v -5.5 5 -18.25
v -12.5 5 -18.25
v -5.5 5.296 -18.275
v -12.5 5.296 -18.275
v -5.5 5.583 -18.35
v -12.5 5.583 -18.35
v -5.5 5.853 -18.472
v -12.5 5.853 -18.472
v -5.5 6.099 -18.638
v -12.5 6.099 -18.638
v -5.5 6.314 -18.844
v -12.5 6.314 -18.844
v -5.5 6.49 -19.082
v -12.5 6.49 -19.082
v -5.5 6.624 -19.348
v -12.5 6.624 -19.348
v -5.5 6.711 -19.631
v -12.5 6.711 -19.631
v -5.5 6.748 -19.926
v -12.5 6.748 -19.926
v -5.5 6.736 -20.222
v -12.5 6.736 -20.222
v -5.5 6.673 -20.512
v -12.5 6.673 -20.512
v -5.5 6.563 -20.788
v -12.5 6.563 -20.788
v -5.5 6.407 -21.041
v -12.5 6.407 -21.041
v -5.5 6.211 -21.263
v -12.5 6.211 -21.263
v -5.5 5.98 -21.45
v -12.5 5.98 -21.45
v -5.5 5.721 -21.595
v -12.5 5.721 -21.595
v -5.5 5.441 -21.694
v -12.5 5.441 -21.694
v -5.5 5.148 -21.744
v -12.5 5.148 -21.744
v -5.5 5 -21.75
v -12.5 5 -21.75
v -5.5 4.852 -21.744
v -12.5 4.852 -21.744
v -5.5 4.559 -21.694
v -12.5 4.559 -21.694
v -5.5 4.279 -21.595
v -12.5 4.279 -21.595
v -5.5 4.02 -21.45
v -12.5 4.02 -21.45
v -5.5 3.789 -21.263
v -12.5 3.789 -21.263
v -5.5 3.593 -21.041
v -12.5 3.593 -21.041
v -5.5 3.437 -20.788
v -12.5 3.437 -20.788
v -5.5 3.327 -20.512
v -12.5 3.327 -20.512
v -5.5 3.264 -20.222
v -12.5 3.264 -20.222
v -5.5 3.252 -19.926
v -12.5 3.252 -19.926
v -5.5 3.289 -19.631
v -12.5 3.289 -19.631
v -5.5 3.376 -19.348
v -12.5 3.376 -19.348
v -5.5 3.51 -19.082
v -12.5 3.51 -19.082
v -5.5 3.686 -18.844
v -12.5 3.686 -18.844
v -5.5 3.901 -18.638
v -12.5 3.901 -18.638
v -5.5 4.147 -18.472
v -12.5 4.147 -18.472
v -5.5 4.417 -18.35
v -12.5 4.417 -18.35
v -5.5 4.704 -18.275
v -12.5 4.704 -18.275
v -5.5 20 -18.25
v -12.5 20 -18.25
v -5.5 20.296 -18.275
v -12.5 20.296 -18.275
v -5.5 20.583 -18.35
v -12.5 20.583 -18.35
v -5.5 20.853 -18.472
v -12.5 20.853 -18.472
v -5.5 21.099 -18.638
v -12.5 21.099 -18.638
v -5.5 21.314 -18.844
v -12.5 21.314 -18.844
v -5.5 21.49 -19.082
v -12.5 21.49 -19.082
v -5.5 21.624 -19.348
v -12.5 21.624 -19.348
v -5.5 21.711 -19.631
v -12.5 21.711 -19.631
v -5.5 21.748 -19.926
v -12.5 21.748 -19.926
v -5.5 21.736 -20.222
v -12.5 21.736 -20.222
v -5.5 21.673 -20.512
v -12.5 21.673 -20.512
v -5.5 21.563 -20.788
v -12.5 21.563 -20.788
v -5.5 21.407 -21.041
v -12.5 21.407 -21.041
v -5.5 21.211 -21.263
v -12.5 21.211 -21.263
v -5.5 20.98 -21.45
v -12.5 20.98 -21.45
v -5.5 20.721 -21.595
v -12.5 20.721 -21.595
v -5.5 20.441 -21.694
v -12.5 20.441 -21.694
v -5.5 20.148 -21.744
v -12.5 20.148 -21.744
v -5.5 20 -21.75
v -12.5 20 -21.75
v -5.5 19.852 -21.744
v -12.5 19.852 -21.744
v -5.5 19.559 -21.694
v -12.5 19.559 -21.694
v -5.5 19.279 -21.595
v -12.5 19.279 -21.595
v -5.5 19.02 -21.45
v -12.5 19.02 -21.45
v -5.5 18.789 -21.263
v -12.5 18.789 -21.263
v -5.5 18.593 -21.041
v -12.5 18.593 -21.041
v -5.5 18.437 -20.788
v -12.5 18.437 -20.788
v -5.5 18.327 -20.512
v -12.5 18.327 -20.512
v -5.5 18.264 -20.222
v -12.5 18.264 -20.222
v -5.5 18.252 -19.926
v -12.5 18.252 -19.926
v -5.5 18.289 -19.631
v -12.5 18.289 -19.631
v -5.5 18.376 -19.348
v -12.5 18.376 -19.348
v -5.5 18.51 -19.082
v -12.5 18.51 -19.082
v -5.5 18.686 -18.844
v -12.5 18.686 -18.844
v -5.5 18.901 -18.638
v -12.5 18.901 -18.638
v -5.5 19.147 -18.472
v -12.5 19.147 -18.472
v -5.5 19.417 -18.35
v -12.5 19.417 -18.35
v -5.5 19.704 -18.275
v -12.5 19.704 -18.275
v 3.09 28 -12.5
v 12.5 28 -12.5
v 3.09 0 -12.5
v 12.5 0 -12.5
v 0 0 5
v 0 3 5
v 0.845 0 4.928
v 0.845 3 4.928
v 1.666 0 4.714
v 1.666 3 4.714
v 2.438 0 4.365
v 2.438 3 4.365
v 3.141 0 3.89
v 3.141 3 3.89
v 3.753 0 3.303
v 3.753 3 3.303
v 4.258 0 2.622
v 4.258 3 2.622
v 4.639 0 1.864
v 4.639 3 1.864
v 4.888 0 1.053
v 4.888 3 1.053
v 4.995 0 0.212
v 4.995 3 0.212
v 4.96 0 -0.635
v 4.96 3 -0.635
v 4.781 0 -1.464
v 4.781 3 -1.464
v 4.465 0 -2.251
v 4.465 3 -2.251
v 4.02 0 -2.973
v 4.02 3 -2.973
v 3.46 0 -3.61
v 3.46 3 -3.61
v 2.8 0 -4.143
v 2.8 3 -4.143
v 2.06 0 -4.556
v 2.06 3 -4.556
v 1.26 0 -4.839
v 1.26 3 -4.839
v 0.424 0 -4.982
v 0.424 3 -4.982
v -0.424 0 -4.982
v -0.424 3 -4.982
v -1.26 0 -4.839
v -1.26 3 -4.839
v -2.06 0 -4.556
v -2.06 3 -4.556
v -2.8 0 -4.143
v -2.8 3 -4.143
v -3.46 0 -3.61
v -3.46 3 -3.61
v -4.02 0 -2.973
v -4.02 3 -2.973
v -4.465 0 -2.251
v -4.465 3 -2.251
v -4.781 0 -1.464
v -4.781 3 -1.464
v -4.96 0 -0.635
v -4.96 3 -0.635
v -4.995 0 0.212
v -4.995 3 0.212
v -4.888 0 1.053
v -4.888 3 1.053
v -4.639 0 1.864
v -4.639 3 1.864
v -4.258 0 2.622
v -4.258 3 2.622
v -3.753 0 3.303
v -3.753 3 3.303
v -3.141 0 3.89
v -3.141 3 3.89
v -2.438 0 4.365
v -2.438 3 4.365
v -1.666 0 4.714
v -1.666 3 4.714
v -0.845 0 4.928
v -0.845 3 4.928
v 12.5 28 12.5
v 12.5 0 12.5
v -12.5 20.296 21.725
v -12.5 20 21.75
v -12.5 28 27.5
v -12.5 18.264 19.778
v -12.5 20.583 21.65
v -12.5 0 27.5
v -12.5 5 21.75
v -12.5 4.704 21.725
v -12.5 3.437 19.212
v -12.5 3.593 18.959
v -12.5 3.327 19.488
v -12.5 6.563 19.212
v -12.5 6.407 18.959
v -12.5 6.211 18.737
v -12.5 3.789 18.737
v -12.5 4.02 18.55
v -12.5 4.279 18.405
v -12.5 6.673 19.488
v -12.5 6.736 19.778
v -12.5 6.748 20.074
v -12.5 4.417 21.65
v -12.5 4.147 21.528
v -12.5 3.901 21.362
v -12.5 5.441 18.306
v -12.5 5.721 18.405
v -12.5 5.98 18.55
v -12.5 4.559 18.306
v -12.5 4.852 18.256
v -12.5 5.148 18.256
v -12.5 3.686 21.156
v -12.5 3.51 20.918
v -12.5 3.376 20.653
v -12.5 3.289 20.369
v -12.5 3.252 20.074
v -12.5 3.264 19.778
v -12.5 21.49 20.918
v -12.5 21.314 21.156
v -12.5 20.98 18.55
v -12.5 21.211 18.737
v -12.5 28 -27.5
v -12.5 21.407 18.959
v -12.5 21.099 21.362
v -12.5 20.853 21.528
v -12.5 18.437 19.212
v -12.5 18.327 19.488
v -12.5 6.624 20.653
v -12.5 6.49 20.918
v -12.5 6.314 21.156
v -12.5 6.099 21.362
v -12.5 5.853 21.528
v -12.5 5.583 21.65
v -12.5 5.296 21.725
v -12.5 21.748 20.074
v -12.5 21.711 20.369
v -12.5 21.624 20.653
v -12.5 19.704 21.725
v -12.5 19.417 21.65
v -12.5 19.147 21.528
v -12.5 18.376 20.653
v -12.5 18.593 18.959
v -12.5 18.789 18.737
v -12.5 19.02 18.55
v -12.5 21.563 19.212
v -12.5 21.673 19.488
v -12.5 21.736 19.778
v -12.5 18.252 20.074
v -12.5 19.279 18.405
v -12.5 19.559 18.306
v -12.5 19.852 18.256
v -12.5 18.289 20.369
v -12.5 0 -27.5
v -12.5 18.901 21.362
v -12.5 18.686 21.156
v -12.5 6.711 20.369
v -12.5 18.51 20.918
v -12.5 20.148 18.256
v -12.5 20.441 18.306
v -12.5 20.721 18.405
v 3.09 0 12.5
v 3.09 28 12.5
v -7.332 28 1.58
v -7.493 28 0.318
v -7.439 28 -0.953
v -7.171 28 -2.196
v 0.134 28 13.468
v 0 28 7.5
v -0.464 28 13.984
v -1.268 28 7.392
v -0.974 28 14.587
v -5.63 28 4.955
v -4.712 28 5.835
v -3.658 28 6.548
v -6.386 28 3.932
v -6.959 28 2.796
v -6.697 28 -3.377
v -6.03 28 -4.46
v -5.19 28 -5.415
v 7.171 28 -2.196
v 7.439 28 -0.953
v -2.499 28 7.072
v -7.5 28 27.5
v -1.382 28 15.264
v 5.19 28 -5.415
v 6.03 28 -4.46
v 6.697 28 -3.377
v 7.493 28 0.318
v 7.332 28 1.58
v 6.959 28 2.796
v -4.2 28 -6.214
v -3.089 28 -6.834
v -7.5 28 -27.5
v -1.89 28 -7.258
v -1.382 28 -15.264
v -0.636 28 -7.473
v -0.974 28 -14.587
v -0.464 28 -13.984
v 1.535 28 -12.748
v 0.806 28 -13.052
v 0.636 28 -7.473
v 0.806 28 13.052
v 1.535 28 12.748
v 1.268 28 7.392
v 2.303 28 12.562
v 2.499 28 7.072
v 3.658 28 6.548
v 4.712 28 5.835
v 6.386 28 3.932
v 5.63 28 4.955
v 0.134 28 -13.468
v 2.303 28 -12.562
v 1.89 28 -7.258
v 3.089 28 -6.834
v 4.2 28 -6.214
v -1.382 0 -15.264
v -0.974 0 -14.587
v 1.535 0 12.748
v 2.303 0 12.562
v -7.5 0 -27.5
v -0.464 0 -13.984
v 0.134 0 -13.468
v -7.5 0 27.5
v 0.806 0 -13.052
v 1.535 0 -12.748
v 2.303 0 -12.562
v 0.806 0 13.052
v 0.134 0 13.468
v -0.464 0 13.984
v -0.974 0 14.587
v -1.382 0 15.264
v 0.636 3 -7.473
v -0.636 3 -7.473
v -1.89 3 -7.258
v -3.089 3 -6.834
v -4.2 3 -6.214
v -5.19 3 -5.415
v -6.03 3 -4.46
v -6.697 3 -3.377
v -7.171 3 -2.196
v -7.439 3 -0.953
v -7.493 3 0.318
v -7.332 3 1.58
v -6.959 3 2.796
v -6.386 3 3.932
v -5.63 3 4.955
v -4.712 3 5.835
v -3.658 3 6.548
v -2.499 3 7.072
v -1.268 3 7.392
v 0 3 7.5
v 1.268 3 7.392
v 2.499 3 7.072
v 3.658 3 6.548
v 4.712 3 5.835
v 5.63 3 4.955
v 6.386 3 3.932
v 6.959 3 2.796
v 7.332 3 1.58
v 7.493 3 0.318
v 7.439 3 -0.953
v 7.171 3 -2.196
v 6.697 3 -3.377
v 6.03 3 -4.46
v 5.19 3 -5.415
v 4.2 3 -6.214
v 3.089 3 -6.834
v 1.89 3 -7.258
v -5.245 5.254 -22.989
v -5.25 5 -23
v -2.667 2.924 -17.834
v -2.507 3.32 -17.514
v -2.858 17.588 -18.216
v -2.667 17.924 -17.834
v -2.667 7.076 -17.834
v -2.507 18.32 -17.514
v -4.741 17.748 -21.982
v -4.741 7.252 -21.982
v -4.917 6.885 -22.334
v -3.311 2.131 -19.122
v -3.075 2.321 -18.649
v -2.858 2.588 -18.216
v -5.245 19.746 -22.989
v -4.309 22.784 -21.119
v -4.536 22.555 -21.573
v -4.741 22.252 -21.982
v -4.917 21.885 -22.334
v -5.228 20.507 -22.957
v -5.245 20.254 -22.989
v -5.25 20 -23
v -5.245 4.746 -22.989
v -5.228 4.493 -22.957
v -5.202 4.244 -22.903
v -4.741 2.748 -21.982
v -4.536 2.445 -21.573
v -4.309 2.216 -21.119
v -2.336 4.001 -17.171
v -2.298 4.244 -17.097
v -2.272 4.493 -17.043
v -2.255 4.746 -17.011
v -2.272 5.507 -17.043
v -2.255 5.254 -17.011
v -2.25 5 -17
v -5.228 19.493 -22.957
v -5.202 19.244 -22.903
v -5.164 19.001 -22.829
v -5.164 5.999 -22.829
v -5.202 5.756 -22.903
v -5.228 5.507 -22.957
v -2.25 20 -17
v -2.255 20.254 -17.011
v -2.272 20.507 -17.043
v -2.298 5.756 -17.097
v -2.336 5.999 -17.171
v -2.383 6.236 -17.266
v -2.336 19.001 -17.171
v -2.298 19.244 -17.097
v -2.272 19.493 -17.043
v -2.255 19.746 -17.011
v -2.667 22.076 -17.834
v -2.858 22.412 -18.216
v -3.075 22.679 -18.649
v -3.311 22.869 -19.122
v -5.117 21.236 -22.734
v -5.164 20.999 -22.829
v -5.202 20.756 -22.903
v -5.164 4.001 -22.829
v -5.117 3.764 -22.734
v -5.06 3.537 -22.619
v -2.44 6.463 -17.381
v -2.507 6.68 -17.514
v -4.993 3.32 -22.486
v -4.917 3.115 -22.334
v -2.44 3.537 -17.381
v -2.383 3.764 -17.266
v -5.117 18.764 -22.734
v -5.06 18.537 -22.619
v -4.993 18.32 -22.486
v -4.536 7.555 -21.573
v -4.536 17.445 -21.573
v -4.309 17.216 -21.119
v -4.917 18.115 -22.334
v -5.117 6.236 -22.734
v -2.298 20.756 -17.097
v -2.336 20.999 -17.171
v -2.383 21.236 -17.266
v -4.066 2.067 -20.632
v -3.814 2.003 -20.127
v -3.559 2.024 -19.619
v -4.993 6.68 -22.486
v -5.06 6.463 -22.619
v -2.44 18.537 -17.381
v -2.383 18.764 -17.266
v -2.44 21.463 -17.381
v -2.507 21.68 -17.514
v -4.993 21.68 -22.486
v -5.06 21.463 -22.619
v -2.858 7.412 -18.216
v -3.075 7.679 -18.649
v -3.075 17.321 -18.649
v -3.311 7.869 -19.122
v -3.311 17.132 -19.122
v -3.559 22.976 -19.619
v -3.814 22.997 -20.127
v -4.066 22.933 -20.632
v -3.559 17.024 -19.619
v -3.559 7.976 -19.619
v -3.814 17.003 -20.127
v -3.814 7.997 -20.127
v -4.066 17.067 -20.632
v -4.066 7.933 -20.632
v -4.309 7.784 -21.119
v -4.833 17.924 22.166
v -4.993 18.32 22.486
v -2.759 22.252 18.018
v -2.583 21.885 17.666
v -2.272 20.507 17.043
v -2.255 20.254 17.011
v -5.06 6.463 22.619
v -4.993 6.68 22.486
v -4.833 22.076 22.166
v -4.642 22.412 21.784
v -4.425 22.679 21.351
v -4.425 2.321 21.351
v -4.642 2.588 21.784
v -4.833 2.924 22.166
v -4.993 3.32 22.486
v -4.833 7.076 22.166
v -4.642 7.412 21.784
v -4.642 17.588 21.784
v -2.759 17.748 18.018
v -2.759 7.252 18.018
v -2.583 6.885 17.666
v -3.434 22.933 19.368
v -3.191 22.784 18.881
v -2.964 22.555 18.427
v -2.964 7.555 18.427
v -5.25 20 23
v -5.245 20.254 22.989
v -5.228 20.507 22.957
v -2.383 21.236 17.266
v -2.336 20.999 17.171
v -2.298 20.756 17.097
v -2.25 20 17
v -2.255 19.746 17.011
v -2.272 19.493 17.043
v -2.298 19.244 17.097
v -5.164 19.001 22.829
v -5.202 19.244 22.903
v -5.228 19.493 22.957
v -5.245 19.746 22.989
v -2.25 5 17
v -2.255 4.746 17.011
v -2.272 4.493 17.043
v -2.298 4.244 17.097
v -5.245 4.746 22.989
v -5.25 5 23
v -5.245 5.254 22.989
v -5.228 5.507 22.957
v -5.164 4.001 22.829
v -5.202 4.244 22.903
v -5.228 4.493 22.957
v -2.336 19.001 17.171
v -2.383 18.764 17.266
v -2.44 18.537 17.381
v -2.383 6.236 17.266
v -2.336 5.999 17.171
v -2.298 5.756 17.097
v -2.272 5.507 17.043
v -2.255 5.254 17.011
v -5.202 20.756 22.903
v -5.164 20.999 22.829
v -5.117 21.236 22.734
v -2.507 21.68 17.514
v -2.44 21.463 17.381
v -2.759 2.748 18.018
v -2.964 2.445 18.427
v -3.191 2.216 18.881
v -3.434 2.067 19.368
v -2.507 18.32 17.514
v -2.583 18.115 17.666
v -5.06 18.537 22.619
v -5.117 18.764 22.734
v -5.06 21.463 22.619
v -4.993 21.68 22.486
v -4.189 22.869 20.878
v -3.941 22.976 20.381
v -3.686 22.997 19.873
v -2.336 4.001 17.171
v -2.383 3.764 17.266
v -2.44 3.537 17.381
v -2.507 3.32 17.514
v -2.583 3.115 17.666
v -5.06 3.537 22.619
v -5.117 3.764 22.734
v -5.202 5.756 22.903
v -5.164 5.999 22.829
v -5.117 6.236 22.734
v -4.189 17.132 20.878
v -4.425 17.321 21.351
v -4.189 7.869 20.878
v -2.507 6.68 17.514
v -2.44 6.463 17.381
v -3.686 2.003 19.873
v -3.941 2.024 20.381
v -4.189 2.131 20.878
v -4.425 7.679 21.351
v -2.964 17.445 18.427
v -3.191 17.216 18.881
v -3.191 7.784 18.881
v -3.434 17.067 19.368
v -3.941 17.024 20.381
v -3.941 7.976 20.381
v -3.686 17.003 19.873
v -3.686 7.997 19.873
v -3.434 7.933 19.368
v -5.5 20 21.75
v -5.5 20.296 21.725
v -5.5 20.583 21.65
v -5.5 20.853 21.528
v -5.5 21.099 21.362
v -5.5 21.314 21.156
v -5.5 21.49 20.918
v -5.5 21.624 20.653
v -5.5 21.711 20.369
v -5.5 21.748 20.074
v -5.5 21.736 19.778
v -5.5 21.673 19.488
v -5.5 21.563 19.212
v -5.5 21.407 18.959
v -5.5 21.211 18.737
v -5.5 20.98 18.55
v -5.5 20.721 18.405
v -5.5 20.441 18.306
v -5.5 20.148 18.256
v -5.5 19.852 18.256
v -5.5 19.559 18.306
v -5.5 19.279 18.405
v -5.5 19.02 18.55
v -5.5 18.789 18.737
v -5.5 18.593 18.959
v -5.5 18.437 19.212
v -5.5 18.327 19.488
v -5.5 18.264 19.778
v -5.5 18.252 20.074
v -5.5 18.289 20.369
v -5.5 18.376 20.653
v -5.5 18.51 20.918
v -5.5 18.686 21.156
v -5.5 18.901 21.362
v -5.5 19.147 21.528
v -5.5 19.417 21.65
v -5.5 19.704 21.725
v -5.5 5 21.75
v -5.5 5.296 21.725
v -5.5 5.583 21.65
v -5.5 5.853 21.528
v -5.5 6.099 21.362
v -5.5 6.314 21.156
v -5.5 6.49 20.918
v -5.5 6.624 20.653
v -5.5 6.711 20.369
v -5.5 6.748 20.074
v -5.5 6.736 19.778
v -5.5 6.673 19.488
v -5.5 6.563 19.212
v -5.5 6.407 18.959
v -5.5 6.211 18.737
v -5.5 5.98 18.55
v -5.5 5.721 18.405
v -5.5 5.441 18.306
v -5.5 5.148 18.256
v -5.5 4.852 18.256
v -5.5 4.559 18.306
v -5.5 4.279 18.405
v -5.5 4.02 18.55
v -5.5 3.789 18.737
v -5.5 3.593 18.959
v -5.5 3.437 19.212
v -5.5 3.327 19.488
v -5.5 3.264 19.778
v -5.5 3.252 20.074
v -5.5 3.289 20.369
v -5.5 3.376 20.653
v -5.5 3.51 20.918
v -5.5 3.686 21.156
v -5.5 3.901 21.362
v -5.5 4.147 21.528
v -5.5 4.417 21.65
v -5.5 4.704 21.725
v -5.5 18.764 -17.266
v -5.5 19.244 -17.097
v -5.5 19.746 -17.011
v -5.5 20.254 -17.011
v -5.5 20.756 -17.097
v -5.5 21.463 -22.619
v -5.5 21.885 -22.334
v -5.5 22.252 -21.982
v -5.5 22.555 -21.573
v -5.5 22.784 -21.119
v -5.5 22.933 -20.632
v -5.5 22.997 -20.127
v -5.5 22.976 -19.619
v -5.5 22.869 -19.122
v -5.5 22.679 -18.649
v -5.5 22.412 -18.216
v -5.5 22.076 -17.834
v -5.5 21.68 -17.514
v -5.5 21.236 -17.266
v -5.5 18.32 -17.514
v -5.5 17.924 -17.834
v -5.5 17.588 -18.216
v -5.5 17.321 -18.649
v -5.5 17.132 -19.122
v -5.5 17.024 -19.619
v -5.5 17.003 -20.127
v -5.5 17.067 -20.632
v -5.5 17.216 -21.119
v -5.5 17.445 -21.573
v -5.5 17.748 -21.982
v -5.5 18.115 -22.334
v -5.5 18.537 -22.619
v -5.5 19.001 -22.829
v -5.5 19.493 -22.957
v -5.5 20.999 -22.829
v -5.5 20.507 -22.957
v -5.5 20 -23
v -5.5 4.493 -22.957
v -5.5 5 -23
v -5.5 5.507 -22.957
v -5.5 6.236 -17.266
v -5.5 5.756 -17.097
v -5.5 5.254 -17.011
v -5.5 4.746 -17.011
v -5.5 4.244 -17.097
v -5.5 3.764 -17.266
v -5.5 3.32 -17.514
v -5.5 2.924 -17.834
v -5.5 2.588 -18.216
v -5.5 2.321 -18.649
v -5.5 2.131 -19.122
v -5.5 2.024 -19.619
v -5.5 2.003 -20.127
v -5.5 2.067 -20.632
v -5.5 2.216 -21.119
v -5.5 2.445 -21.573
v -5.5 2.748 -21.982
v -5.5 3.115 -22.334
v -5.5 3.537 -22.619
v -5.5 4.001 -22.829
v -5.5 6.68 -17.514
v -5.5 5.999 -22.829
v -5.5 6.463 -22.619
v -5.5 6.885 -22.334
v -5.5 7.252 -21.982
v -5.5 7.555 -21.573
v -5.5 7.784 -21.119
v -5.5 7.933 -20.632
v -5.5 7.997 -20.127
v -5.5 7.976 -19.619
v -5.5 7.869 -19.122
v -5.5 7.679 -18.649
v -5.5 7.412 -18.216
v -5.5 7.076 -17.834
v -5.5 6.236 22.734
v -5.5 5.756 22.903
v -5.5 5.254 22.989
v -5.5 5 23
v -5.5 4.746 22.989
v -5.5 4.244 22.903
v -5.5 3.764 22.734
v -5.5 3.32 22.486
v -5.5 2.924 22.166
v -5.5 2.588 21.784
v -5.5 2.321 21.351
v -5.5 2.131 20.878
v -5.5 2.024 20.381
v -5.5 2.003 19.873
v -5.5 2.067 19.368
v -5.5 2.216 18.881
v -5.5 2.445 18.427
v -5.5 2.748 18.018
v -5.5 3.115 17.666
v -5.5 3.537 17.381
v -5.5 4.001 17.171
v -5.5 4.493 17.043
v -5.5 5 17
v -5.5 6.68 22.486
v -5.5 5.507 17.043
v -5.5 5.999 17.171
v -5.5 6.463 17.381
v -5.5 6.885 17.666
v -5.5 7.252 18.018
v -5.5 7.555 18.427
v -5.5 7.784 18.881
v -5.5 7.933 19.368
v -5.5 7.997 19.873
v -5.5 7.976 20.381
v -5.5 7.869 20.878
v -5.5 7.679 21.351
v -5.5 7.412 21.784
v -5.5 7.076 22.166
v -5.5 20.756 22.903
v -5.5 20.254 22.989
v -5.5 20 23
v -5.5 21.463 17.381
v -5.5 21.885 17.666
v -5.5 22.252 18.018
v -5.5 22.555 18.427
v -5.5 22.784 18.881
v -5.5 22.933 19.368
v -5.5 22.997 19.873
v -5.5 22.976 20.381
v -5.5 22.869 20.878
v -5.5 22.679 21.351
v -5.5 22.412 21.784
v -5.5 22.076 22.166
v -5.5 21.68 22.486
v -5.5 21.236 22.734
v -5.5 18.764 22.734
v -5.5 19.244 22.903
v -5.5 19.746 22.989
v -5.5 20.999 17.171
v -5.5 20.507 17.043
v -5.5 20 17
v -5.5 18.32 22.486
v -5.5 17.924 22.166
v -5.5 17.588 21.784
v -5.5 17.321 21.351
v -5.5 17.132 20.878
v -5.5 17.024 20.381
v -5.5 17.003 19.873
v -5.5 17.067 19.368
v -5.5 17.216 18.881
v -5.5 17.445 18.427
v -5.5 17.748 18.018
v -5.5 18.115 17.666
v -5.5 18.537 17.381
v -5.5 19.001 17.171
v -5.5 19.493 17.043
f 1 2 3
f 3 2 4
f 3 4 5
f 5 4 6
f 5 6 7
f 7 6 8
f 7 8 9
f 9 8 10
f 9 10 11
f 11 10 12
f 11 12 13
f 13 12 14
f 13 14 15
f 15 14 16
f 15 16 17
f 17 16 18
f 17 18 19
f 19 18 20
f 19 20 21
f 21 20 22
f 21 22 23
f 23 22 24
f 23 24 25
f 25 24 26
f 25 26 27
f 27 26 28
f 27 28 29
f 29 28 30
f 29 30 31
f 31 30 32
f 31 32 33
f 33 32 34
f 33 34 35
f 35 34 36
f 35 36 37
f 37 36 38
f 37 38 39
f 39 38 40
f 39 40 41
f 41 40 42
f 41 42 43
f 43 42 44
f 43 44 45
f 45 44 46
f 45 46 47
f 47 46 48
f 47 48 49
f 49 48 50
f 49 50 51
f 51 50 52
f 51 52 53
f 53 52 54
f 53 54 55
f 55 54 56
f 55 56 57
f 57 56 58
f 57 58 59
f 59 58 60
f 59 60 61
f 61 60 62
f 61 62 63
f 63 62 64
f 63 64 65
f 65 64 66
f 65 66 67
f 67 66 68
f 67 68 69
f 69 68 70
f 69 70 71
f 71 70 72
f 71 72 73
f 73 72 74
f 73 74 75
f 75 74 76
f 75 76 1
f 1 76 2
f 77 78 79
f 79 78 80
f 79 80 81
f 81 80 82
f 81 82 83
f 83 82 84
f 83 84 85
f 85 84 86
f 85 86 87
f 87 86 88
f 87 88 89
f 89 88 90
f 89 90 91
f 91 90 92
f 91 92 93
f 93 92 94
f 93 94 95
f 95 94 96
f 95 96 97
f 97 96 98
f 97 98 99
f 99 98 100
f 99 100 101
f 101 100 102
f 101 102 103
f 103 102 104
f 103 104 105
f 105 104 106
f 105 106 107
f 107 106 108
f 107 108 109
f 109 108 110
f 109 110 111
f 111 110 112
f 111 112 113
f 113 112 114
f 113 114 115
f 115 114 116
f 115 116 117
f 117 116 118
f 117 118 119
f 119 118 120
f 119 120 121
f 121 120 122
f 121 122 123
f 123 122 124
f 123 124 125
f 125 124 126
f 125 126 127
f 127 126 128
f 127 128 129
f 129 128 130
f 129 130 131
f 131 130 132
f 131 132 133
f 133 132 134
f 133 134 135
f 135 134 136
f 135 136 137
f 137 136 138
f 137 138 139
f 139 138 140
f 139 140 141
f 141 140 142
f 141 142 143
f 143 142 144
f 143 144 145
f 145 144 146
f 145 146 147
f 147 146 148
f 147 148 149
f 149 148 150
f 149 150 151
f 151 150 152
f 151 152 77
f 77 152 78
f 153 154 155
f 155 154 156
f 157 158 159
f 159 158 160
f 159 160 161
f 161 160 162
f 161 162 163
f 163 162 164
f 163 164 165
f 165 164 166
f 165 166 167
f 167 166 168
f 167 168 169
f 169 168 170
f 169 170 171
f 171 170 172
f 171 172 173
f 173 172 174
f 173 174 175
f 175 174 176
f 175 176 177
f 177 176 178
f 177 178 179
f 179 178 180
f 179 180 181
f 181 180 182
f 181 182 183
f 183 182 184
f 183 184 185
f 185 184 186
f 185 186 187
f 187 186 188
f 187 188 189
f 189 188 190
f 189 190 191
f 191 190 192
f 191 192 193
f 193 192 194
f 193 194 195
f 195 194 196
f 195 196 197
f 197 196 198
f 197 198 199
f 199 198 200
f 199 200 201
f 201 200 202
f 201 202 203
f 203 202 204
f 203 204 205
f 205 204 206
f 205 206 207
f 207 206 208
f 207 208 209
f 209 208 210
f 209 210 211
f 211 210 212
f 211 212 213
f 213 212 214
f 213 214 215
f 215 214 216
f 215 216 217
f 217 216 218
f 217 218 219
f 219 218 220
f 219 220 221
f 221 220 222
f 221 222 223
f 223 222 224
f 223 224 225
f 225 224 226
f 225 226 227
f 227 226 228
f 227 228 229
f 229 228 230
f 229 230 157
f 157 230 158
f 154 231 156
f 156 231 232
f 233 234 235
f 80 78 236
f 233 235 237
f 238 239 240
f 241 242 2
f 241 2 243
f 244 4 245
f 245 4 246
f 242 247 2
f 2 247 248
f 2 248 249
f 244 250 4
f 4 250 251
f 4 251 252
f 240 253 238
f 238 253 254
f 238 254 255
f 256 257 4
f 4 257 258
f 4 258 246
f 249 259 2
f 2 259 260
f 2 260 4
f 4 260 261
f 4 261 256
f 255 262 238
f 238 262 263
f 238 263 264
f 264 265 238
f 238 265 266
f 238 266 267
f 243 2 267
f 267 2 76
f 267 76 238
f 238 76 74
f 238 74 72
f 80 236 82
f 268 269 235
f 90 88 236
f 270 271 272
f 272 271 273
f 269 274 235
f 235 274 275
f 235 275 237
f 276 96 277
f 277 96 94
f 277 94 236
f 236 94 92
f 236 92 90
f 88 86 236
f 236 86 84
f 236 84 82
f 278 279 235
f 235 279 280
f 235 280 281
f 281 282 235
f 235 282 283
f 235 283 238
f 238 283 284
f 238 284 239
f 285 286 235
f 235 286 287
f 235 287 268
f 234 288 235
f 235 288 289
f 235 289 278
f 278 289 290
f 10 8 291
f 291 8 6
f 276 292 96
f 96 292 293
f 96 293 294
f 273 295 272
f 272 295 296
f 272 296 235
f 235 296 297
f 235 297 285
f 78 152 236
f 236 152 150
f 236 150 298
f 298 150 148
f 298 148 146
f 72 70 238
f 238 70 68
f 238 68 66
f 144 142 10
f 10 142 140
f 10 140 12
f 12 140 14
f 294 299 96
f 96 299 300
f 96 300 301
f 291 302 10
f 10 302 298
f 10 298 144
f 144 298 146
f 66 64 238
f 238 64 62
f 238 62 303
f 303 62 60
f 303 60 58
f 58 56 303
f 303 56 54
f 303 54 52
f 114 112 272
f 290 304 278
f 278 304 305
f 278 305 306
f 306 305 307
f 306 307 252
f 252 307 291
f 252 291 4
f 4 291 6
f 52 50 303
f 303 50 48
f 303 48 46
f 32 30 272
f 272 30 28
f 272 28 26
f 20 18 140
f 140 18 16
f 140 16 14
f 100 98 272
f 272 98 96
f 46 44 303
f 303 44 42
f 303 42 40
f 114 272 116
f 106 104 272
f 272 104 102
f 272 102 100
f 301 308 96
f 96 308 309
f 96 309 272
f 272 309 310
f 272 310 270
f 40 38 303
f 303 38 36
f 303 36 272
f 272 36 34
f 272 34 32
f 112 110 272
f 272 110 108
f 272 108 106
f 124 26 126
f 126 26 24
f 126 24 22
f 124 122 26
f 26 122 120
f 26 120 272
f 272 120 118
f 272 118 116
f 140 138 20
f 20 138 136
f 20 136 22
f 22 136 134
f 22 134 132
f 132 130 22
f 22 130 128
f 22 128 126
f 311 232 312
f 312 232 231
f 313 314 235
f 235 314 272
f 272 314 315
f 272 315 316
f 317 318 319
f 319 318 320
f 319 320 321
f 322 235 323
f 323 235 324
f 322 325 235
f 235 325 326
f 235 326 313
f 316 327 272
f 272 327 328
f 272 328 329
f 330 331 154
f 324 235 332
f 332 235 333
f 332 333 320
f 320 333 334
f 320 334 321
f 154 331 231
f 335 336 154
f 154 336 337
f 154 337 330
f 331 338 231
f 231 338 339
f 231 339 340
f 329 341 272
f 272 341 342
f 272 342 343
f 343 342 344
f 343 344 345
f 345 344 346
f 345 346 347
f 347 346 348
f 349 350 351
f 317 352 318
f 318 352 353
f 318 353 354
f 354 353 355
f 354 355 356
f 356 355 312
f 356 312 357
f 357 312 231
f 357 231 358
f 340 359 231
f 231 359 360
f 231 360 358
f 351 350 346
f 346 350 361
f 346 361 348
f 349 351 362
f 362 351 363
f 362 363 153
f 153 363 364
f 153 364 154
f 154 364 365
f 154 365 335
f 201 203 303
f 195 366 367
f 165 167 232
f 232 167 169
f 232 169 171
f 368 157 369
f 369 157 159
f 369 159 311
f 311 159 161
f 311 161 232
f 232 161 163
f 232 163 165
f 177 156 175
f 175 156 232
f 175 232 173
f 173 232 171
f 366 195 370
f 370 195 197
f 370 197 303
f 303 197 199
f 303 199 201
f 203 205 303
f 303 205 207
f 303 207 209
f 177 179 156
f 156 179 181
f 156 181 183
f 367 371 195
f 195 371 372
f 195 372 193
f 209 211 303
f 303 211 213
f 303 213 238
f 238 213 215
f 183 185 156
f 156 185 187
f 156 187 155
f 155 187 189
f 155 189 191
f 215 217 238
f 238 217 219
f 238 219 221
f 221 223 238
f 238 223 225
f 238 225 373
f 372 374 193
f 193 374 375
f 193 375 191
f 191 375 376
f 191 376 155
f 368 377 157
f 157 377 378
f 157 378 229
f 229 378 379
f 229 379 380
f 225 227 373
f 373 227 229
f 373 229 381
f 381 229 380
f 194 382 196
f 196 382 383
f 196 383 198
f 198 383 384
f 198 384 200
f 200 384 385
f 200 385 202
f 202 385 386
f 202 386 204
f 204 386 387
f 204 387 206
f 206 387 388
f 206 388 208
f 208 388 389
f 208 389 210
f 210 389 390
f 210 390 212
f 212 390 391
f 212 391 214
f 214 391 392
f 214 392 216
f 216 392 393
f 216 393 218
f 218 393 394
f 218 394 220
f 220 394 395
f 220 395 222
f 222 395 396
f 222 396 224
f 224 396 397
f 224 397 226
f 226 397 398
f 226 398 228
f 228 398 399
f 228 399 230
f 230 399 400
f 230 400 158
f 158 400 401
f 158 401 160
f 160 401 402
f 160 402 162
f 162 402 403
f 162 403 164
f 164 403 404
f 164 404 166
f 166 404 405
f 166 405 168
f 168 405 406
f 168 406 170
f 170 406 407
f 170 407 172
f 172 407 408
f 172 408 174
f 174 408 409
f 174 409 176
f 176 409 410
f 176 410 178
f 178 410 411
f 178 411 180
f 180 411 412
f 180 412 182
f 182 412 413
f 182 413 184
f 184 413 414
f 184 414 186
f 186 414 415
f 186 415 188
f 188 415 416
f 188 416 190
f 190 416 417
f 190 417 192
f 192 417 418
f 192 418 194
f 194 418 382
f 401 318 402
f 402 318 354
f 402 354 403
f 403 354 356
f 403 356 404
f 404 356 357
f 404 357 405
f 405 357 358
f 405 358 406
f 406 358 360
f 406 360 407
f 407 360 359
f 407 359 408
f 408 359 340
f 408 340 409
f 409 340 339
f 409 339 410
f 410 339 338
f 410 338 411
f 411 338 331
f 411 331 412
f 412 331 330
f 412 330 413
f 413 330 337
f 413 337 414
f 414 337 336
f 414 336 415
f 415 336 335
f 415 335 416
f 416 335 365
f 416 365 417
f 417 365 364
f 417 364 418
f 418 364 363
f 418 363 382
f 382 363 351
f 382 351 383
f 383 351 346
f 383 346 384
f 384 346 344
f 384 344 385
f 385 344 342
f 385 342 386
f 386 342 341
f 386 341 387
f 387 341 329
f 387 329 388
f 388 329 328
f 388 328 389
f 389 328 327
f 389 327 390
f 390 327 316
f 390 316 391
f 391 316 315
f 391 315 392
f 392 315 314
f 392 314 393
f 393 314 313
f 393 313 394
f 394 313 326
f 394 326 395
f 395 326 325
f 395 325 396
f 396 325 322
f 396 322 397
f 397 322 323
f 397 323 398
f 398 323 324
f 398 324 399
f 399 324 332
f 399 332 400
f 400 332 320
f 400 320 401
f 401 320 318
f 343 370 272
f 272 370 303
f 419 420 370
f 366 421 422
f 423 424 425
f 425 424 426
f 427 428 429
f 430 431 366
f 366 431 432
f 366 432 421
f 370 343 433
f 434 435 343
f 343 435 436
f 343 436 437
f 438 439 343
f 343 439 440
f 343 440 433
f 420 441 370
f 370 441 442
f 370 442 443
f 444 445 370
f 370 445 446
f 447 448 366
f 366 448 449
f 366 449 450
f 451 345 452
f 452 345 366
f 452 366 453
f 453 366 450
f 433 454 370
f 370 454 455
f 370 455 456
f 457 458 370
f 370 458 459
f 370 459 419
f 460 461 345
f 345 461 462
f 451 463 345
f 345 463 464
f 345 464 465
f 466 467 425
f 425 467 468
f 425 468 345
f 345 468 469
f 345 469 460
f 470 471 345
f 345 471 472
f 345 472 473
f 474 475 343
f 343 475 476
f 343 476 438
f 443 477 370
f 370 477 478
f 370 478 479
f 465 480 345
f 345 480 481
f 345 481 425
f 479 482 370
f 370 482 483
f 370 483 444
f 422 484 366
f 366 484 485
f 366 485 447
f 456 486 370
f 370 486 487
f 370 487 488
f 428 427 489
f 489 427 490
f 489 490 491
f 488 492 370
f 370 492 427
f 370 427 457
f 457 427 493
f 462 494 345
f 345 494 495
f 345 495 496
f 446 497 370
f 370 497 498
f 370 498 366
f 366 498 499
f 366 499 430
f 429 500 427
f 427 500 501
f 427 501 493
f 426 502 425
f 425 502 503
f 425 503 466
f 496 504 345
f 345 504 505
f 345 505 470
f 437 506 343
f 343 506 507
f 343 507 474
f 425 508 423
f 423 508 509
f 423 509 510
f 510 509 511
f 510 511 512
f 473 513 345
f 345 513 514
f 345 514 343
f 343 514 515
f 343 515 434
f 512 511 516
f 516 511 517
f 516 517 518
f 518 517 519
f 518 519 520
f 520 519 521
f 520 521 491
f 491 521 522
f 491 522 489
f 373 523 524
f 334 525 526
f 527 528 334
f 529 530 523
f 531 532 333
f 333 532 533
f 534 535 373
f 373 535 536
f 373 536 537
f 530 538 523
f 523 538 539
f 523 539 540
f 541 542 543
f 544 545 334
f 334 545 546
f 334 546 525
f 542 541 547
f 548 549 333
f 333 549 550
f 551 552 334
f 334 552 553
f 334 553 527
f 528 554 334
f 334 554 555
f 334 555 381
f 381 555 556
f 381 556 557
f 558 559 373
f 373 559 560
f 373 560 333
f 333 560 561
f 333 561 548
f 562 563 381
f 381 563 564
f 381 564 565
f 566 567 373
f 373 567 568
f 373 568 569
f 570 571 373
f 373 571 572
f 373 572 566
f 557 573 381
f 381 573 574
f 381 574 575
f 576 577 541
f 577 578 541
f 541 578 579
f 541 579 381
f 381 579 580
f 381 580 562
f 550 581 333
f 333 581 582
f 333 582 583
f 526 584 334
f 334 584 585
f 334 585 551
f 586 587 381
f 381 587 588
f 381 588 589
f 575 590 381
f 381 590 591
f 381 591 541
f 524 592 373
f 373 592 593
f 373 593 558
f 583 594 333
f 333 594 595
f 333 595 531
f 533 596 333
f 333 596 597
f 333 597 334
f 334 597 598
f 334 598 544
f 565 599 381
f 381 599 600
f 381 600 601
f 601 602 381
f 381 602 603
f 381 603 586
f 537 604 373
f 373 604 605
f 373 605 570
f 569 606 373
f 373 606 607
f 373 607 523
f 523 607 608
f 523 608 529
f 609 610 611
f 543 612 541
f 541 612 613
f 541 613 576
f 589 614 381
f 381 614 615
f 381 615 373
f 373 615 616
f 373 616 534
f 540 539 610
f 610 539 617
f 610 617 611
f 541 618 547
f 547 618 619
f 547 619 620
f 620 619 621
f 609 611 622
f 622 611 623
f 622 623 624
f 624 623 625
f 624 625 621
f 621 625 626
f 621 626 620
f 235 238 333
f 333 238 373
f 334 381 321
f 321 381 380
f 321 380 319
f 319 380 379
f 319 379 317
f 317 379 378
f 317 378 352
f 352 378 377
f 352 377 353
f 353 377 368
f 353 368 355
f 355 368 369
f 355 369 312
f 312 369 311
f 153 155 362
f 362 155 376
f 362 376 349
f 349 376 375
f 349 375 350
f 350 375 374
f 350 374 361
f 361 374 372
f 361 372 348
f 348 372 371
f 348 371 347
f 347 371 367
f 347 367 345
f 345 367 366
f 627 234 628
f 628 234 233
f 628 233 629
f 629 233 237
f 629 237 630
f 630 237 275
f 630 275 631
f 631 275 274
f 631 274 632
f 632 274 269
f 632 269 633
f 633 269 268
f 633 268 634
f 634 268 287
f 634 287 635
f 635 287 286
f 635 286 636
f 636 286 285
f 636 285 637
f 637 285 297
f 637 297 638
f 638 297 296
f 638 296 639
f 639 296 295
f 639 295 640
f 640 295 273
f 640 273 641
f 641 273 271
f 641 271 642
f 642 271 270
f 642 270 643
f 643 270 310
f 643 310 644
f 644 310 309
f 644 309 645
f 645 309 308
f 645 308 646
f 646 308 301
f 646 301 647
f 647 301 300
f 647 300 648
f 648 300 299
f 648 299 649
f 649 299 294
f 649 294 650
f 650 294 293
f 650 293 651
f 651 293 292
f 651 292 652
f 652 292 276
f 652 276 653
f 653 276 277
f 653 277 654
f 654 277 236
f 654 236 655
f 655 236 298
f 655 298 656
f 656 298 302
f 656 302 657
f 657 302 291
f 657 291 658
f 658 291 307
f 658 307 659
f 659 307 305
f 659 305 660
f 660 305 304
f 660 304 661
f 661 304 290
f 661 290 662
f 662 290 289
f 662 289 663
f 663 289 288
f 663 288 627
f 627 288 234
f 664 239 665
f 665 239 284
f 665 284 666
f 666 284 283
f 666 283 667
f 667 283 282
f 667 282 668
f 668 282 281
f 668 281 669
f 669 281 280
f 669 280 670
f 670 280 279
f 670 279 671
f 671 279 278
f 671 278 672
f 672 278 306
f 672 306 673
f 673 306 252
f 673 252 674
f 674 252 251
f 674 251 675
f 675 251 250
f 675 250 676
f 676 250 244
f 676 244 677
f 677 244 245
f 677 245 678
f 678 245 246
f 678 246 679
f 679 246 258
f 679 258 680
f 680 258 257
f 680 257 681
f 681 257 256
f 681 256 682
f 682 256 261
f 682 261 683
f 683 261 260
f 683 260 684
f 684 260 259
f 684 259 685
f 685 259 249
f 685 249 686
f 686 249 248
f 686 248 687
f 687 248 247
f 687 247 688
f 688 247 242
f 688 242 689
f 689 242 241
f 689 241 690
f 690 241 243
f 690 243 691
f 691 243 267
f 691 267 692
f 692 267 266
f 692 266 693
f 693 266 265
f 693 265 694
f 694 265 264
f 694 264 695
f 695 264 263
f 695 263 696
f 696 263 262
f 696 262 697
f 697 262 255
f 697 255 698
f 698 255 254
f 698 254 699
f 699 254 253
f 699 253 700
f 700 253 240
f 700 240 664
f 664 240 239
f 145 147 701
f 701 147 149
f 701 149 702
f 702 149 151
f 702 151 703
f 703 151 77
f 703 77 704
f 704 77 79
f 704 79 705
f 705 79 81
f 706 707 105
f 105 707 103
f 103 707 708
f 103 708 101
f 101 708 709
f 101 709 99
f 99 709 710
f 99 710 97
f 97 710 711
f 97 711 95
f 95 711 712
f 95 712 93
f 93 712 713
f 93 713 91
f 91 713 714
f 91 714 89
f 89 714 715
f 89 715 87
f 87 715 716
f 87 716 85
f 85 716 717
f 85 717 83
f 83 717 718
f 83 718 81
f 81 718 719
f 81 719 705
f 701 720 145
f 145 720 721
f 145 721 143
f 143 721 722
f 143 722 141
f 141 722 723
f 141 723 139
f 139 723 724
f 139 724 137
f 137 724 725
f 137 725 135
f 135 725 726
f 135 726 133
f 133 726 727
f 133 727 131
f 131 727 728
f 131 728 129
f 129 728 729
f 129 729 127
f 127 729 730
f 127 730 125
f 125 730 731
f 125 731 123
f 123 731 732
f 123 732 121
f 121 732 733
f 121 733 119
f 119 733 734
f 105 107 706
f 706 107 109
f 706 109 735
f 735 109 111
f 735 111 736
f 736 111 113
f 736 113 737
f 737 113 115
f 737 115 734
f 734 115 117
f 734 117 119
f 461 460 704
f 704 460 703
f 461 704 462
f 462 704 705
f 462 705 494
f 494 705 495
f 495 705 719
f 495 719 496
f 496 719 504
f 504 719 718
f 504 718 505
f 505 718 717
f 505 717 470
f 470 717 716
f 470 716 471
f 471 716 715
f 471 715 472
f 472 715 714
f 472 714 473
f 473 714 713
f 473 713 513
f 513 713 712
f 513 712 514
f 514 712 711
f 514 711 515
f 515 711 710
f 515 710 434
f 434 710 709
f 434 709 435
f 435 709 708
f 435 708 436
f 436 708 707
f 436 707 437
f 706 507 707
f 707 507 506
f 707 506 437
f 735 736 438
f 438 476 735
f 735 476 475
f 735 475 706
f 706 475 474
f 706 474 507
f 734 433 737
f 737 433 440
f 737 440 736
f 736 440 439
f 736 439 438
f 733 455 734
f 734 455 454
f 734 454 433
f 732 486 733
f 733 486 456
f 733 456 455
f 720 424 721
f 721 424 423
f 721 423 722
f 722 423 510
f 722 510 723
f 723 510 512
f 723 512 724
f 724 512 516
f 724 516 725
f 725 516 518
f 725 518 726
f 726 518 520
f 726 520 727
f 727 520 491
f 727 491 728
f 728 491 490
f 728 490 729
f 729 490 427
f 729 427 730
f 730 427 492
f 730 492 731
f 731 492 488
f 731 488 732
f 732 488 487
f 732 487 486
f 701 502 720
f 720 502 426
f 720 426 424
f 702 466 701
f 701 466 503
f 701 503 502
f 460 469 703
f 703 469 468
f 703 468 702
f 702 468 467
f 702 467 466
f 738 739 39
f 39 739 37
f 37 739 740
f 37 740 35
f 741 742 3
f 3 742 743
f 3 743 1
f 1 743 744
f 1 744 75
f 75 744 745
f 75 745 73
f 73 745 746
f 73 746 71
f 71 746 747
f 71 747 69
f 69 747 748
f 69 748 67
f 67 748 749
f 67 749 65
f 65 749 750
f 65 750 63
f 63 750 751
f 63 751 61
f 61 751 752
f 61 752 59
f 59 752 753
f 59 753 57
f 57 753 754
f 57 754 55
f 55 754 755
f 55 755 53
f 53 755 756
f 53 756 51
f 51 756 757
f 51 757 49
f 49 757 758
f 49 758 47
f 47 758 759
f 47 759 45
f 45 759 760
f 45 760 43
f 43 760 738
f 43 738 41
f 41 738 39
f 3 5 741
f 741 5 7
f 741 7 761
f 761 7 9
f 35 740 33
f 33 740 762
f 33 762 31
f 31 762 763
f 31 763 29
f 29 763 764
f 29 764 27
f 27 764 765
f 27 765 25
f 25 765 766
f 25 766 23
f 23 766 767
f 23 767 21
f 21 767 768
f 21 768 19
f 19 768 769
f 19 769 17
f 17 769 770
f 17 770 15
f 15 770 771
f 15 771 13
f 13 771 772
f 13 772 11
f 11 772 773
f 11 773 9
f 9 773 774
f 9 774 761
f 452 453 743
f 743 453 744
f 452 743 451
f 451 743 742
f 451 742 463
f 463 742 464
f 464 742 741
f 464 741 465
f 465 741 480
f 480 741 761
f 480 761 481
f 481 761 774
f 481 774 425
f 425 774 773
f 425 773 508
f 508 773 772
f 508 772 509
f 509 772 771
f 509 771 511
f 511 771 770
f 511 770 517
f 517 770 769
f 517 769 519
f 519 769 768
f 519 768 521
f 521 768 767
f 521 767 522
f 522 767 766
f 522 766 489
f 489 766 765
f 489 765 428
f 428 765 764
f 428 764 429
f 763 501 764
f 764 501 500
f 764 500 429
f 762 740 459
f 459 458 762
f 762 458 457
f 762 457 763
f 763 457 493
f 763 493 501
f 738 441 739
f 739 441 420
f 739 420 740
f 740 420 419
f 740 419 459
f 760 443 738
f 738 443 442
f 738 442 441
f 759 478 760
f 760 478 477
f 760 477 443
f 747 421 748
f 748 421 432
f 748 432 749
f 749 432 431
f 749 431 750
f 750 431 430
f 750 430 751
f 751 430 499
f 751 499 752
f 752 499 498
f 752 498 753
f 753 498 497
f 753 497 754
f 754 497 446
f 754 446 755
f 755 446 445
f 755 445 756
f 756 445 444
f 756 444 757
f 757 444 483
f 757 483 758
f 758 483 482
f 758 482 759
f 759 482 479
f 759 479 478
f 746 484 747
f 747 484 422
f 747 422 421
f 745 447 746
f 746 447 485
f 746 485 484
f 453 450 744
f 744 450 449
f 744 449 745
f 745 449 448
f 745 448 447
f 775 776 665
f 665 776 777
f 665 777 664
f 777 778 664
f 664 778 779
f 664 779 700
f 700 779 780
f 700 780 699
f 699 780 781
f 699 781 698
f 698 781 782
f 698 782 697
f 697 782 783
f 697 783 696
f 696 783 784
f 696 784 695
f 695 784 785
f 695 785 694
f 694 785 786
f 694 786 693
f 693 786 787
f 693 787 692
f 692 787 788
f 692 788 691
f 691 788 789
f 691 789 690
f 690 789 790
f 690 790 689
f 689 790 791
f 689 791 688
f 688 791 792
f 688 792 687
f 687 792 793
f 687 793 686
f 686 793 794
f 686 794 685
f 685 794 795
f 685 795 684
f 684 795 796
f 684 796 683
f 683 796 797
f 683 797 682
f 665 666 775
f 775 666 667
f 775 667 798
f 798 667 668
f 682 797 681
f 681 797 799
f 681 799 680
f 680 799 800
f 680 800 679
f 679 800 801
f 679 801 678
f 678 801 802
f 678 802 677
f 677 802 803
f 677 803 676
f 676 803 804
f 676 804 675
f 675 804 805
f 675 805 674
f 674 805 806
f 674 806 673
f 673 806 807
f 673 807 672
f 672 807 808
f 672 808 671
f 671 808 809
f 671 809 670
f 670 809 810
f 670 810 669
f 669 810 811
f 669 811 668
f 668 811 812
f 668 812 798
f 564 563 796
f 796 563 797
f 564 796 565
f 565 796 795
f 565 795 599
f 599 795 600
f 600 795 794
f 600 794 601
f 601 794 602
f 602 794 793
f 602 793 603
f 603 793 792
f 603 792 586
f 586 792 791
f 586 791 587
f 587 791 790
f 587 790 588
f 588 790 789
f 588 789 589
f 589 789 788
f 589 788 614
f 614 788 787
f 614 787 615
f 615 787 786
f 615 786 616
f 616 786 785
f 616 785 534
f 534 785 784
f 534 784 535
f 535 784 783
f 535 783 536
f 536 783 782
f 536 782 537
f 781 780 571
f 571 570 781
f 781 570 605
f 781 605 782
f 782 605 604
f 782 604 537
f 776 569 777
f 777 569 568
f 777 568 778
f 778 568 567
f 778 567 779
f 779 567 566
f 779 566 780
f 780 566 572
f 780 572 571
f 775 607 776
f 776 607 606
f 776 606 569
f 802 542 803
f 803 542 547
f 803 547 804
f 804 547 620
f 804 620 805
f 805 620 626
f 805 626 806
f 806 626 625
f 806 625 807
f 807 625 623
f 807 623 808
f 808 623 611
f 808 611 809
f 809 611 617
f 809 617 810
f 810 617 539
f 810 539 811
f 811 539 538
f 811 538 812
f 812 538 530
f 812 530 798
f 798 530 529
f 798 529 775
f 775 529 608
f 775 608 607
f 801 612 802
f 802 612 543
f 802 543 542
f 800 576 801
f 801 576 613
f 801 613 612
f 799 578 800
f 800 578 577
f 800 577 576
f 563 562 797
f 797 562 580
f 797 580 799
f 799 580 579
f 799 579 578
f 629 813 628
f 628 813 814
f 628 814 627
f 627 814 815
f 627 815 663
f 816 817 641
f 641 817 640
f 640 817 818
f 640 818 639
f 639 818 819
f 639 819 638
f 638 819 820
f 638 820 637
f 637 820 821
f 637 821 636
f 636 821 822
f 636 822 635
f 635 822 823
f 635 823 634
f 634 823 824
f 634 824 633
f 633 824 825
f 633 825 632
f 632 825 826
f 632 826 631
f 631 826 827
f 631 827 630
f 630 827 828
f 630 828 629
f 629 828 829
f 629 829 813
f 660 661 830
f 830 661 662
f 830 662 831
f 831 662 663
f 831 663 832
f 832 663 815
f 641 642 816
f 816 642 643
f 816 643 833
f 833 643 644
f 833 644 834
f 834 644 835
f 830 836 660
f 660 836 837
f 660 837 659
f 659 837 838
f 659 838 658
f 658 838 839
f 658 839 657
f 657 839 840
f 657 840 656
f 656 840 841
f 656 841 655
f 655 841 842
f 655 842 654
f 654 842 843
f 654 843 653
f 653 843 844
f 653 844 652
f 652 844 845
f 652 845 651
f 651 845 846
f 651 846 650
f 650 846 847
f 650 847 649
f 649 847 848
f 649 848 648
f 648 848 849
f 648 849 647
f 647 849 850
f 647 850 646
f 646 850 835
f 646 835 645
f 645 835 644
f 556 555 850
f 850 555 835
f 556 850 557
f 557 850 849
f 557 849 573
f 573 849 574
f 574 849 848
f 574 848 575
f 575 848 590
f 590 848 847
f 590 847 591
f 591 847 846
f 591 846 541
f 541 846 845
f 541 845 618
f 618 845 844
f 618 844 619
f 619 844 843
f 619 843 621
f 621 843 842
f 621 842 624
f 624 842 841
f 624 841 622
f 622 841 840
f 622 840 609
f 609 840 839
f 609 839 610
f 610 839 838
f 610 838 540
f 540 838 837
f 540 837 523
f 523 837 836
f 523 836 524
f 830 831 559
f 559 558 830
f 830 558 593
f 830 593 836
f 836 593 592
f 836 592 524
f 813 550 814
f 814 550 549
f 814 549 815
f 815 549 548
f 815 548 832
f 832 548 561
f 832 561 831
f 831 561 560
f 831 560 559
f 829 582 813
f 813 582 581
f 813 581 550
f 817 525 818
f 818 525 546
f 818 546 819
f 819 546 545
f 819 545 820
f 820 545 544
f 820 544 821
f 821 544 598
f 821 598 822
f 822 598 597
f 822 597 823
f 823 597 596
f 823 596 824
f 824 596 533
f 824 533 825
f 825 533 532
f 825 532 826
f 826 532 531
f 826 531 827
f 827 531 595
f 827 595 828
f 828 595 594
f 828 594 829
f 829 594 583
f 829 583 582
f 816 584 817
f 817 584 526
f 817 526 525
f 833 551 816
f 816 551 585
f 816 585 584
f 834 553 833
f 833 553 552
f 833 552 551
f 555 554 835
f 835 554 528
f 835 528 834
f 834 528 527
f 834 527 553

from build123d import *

# Parameters (mm, degrees)
SKETCH1_W           = 25
SKETCH1_H           = 25
BOSS_EXTRUDE1_DEPTH = 28
SKETCH2_R           = 5
CUT_EXTRUDE1_DEPTH  = 30
SKETCH3_R           = 7.5
CUT_EXTRUDE2_DEPTH  = 25
BOSS_EXTRUDE2_DEPTH = 28
FILLET1_R           = 5
SKETCH7_R           = 1.75
CUT_EXTRUDE3_DEPTH  = 13
SKETCH8_R           = 3
CUT_EXTRUDE4_DEPTH  = 18


with BuildPart() as part:
    # Sketch1 → Boss-Extrude1 (new body)
    with BuildSketch(Plane(origin=(0, 0, 0), x_dir=(1, 0, 0), z_dir=(0, 1, 0))):
        Rectangle(SKETCH1_W, SKETCH1_H)
    extrude(amount=BOSS_EXTRUDE1_DEPTH)

    # Sketch2 → Cut-Extrude1 (cut)
    with BuildSketch(Plane(origin=(0, 28, 0), x_dir=(1, 0, 0), z_dir=(0, 1, 0))):
        with Locations(Location((0, 0, 0), (0, 0, 270))):
            Circle(SKETCH2_R)
    extrude(amount=-CUT_EXTRUDE1_DEPTH, mode=Mode.SUBTRACT)

    # Sketch3 → Cut-Extrude2 (cut)
    with BuildSketch(Plane(origin=(0, 28, 0), x_dir=(1, 0, 0), z_dir=(0, 1, 0))):
        with Locations(Location((0, 0, 0), (0, 0, 270))):
            Circle(SKETCH3_R)
    extrude(amount=-CUT_EXTRUDE2_DEPTH, mode=Mode.SUBTRACT)

    # Sketch6 → Boss-Extrude2 (add)
    with BuildSketch(Plane.XZ):
        Polygon((-12.5, -12.5), (-12.5, -27.5), (-7.5, -27.5), (0, -12.5), align=None)
        Polygon((-7.5, 27.5), (0, 12.5), (-12.5, 12.5), (-12.5, 27.5), align=None)
    extrude(amount=-BOSS_EXTRUDE2_DEPTH)

    # Fillet1
    fillet1_edges = [part.edges().sort_by_distance(p)[0] for p in [
        (0, 14, -12.5),
        (0, 14, 12.5),
    ]]
    fillet(fillet1_edges, radius=FILLET1_R)

    # Sketch7 → Cut-Extrude3 (cut)
    with BuildSketch(Plane.ZY.offset(12.5)):
        with Locations((20, 20)):
            Circle(SKETCH7_R)
        with Locations((20, 5)):
            Circle(SKETCH7_R)
        with Locations(Location((-20, 20, 0), (0, 0, 180))):
            Circle(SKETCH7_R)
        with Locations(Location((-20, 5, 0), (0, 0, 180))):
            Circle(SKETCH7_R)
    extrude(amount=-CUT_EXTRUDE3_DEPTH, mode=Mode.SUBTRACT)

    # Sketch8 → Cut-Extrude4 (cut)
    with BuildSketch(Plane(origin=(12.5, 0, 0), x_dir=(0, 0, -1), z_dir=(1, 0, 0))):
        with Locations((20, 20)):
            Circle(SKETCH8_R)
        with Locations((20, 5)):
            Circle(SKETCH8_R)
        with Locations((-20, 20)):
            Circle(SKETCH8_R)
        with Locations((-20, 5)):
            Circle(SKETCH8_R)
    extrude(amount=-CUT_EXTRUDE4_DEPTH, mode=Mode.SUBTRACT)


solid = part.part
